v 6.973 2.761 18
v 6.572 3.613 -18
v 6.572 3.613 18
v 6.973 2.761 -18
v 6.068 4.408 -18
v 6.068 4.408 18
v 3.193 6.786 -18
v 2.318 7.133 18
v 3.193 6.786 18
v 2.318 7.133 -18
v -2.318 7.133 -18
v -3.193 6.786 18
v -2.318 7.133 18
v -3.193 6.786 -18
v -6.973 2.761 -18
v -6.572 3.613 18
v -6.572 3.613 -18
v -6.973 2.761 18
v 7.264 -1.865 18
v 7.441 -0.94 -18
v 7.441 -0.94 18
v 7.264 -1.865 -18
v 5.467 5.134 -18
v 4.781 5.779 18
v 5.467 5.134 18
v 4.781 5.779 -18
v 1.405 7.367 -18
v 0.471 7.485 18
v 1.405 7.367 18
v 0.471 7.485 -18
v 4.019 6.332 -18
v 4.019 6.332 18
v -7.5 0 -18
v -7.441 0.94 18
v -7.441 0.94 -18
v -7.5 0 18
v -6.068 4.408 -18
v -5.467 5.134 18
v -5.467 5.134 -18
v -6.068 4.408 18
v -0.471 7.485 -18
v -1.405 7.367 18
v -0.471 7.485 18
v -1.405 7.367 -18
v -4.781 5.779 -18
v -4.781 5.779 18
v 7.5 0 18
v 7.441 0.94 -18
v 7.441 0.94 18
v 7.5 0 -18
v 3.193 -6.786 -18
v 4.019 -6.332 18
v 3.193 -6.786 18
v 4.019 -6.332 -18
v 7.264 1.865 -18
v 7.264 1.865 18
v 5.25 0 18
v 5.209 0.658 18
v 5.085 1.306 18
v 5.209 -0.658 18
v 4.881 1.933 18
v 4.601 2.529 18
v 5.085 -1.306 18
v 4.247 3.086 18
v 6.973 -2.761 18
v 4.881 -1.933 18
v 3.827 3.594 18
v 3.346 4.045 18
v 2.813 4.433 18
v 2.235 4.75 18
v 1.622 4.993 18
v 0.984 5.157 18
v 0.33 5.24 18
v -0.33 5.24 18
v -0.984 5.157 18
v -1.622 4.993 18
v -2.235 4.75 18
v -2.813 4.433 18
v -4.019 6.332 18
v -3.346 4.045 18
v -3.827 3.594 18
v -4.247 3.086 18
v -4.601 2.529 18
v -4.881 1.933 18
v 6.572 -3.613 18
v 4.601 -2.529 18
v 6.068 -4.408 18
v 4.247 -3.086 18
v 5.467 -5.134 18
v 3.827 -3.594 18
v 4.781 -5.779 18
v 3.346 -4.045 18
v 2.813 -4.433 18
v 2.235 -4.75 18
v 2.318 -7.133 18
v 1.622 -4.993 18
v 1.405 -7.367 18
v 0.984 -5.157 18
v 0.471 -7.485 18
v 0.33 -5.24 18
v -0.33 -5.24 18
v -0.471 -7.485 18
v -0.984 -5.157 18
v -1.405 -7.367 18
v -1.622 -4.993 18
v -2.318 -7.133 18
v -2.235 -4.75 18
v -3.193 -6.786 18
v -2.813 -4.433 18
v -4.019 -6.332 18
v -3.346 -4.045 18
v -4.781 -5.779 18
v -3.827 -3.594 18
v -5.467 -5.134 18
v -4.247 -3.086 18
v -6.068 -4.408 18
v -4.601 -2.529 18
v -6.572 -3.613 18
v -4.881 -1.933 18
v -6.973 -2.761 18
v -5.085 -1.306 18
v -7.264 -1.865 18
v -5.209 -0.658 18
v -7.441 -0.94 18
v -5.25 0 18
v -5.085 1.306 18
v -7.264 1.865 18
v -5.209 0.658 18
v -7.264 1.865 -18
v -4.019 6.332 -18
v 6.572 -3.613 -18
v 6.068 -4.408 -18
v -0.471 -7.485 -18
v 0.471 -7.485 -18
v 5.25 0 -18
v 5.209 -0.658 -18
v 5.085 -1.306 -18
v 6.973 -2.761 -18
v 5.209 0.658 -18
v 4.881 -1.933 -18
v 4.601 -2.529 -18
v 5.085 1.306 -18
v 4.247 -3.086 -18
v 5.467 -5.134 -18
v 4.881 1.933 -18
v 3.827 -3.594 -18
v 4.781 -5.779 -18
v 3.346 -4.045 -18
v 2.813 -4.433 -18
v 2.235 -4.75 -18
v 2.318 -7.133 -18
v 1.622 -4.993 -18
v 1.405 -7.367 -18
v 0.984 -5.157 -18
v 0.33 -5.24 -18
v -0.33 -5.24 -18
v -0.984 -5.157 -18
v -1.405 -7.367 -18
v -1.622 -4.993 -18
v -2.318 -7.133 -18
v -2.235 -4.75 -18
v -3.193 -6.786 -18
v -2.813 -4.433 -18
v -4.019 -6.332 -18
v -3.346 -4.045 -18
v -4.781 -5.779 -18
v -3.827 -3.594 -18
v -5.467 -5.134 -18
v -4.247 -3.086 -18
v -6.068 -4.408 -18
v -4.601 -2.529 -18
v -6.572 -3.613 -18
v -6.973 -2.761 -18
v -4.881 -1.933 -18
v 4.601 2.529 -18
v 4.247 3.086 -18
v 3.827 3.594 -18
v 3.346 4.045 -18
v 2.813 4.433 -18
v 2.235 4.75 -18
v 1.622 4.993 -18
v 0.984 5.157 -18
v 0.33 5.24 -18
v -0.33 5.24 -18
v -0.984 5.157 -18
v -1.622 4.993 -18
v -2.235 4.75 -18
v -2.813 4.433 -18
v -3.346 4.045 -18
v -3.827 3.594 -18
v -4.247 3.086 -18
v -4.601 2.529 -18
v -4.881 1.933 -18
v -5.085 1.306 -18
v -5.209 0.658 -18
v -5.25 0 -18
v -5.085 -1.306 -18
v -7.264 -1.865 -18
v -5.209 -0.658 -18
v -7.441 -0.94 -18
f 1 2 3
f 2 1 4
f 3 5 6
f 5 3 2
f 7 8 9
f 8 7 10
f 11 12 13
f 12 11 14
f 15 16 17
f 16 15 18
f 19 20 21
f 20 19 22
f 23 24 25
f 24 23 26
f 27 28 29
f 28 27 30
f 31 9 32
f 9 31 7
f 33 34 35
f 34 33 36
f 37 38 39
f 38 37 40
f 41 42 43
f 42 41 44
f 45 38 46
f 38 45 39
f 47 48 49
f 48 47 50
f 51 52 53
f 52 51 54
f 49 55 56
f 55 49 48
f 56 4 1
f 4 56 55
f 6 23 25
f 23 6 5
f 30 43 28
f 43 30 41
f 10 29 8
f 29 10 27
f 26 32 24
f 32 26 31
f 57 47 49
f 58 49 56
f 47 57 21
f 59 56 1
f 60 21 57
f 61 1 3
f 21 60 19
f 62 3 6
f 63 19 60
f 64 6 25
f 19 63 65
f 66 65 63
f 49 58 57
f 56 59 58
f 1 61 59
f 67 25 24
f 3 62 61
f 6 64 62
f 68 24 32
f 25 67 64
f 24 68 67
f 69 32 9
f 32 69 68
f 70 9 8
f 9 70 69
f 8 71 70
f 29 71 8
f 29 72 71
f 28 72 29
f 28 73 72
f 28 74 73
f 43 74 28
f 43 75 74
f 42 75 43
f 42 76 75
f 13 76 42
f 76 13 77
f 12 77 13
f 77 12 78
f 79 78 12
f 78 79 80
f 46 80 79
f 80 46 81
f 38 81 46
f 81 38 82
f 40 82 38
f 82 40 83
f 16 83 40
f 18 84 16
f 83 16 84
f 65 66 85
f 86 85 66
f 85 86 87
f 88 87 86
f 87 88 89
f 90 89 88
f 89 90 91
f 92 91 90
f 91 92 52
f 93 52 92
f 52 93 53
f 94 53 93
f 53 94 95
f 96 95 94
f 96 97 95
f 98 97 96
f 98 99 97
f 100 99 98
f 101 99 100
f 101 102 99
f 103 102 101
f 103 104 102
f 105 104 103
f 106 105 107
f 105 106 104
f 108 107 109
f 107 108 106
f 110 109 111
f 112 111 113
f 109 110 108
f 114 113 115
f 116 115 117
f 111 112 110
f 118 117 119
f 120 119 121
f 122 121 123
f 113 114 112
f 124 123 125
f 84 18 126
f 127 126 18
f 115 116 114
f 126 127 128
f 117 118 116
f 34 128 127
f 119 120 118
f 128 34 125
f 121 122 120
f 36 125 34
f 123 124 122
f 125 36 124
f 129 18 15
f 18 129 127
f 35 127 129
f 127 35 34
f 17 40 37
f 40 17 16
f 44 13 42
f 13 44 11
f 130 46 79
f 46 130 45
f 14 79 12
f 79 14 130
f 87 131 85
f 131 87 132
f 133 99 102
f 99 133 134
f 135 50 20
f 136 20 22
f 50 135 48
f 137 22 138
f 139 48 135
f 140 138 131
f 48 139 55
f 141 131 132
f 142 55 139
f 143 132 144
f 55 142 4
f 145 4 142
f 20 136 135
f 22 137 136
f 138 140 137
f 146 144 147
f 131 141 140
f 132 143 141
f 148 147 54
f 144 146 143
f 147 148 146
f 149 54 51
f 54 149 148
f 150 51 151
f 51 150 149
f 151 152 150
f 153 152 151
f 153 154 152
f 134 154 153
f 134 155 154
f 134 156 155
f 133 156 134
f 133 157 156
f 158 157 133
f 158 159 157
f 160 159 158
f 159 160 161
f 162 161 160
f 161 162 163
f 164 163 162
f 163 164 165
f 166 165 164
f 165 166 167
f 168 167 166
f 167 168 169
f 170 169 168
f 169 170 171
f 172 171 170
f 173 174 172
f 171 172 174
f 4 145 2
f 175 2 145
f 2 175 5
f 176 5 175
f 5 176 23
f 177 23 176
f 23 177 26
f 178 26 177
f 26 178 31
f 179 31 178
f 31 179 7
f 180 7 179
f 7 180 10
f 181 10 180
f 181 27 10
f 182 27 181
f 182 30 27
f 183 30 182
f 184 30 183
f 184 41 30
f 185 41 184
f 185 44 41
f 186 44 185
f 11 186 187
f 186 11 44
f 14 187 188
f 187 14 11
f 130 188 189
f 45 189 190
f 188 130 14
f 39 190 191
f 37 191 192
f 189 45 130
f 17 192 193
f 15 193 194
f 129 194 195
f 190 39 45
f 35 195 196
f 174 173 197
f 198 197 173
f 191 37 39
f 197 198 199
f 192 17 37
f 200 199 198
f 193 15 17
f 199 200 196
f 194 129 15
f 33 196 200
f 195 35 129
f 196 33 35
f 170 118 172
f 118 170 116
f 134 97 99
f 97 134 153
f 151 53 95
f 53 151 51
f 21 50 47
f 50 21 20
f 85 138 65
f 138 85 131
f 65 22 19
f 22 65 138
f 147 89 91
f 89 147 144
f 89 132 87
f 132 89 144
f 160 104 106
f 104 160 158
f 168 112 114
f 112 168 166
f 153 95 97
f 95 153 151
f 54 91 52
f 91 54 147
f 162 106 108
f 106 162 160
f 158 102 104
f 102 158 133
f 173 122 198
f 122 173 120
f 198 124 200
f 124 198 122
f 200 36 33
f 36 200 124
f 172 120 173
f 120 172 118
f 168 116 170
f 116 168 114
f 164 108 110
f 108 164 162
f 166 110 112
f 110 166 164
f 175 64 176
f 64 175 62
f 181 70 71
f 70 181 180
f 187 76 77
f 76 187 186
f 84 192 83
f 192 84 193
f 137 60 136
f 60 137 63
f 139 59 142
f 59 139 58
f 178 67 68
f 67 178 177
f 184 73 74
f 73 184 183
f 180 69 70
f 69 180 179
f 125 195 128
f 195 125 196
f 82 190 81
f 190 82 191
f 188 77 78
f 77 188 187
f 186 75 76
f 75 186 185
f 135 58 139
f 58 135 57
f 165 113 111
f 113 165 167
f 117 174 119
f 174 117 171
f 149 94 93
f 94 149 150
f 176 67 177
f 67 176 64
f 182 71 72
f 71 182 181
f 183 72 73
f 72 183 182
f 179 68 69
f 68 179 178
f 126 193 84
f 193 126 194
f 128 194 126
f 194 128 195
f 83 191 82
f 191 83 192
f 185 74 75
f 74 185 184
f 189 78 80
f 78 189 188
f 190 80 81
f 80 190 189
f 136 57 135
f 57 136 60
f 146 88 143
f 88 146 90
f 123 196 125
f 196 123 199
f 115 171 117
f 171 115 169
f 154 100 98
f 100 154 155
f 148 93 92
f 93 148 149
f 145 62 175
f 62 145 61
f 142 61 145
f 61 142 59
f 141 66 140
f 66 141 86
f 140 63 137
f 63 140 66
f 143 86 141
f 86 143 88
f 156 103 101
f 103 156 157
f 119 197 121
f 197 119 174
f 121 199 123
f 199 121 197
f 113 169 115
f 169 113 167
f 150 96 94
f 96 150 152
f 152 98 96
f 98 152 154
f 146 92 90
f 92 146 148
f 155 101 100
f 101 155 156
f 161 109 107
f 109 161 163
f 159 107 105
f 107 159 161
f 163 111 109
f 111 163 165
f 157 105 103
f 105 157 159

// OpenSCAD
$fn = 50;


difference() {
	union() {
		translate(v = [0, 0, -18.0000000000]) {
			cylinder(h = 36, r = 7.5000000000);
		}
	}
	union() {
		translate(v = [0, 0, -100.0000000000]) {
			cylinder(h = 200, r = 5.2500000000);
		}
	}
}
